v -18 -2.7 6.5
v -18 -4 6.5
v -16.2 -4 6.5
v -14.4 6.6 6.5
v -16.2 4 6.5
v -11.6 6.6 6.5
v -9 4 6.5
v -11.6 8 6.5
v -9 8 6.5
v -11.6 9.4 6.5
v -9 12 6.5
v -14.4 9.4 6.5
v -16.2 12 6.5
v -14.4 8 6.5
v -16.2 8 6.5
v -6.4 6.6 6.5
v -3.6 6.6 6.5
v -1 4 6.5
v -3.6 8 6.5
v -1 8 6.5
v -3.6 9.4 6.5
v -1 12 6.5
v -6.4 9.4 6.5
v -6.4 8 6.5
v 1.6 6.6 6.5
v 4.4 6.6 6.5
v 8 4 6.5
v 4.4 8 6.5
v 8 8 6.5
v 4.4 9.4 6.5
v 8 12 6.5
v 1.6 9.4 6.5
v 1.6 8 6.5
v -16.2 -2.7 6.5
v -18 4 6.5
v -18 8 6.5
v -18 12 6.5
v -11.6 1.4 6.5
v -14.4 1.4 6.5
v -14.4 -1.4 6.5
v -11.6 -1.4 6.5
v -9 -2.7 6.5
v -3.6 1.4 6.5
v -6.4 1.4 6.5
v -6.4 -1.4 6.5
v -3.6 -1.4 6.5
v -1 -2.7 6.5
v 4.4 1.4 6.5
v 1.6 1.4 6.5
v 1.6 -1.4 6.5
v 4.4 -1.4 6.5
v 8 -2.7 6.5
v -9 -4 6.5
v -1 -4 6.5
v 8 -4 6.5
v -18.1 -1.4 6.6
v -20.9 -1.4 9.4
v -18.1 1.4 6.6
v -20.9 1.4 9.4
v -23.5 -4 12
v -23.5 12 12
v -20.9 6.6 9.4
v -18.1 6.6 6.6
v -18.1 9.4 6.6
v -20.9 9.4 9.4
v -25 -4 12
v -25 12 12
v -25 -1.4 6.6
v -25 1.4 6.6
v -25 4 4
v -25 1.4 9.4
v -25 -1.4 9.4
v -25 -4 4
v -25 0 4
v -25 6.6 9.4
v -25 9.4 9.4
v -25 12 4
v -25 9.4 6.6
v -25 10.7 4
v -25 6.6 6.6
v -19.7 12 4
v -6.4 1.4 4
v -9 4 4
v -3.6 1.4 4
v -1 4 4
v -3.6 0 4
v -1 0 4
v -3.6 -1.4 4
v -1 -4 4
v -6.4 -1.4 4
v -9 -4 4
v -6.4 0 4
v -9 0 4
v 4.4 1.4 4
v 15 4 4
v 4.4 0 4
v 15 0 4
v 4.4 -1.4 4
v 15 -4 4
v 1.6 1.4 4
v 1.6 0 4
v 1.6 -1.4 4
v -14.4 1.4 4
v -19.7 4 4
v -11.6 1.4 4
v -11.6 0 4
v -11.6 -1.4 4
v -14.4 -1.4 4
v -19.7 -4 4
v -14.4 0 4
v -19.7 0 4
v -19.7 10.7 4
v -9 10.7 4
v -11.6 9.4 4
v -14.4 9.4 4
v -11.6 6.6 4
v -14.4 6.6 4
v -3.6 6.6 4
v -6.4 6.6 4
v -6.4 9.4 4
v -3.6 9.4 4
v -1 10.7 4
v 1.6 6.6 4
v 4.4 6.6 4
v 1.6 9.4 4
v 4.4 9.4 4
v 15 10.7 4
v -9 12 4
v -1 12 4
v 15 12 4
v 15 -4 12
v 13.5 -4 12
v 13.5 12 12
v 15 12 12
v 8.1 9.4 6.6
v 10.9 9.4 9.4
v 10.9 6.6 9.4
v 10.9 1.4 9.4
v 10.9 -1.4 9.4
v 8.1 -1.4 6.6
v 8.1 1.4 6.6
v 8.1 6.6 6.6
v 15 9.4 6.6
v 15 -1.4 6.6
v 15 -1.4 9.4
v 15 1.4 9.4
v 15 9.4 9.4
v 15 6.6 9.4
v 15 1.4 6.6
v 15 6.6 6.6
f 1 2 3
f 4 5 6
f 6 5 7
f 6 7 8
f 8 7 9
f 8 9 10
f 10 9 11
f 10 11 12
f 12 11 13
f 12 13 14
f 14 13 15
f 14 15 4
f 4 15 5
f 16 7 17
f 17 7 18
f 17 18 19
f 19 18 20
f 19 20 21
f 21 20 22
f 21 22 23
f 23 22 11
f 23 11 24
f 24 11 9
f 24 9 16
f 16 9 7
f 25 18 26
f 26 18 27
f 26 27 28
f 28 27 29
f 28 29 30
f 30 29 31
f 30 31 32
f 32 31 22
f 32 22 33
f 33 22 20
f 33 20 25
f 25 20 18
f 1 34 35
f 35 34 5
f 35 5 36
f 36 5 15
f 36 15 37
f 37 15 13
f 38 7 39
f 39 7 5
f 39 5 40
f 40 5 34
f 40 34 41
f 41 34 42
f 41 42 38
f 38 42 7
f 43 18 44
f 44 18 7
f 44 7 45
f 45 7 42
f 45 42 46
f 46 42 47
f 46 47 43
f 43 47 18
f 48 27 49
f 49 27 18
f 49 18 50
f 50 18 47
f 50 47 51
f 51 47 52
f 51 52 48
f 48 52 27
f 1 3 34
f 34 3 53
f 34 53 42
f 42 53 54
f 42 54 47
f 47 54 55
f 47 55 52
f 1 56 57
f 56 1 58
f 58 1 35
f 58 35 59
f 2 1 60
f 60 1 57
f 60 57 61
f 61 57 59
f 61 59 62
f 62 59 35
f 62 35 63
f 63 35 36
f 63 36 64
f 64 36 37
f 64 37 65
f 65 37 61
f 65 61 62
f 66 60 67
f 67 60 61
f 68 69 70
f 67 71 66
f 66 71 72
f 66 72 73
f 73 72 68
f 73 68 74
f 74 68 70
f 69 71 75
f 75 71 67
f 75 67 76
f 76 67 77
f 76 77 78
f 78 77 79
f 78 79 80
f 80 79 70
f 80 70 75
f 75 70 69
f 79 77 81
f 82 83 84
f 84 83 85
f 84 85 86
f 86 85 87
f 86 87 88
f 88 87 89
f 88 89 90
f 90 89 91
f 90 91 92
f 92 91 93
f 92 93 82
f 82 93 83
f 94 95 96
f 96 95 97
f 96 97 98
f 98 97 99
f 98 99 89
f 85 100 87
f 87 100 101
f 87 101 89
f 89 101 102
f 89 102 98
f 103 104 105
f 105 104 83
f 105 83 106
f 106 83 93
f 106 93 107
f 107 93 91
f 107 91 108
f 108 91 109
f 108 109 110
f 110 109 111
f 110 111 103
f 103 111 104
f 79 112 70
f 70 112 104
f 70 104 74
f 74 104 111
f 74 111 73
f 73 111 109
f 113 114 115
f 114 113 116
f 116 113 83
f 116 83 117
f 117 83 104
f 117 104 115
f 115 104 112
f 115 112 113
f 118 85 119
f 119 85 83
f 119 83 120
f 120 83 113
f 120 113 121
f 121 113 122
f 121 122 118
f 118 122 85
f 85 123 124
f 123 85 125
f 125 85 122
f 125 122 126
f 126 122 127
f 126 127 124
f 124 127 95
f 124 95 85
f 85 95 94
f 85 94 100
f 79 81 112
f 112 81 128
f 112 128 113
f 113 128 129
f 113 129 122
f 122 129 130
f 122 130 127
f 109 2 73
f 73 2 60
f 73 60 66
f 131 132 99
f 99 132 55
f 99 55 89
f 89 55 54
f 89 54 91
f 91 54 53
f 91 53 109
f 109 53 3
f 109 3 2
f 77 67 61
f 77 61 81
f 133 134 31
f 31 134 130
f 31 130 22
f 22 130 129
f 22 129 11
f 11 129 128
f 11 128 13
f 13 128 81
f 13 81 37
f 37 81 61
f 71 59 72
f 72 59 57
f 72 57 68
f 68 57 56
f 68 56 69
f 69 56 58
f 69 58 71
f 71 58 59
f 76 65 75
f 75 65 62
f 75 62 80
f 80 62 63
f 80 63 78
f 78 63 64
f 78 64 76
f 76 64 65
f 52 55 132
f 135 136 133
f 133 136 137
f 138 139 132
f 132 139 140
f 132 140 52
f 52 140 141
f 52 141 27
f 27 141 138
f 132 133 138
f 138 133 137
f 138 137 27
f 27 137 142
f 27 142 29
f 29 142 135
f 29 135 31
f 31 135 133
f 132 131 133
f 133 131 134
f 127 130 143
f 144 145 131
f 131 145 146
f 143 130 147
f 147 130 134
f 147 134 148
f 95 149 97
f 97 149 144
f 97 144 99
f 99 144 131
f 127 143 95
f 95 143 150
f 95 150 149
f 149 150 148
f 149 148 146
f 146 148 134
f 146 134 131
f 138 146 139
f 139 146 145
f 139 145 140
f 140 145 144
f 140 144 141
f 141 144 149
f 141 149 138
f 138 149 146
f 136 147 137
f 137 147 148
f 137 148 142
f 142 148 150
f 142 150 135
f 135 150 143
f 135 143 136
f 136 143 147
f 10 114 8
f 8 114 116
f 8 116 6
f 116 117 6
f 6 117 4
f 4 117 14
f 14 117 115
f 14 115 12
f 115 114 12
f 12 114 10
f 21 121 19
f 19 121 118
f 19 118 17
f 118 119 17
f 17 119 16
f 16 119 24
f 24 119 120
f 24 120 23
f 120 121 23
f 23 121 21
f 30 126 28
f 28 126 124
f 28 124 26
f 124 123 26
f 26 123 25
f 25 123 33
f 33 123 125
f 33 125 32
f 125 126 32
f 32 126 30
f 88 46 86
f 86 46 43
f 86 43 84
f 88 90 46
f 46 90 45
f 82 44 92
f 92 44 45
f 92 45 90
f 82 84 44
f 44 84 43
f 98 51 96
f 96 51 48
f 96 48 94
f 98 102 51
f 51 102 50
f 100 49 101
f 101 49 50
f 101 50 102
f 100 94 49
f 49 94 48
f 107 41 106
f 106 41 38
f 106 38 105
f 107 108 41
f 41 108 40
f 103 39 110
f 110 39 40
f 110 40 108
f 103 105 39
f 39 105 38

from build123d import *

# Parameters (mm, degrees)
RESSALTO_EXTRUS_O1_DEPTH  = 16
ESBO_O2_W                 = 2.8
ESBO_O2_H                 = 2.8
CORTE_EXTRUS_O1_DEPTH     = 54.103672189
ESBO_O4_W                 = 2.8
ESBO_O4_H                 = 2.8
CORTE_EXTRUS_O2_DEPTH     = 31.186917696
CORPO_MOVER_COPIAR1_ANGLE = 90
ESBO_O6_W                 = 30
ESBO_O6_H                 = 16
CORTE_EXTRUS_O3_DEPTH     = 29.861739379
ESBO_O7_W                 = 25.221413321
ESBO_O7_H                 = 12.57615678
RESSALTO_EXTRUS_O2_DEPTH  = 2.5
ESBO_O8_W                 = 2.8
ESBO_O8_H                 = 2.8
CORTE_EXTRUS_O4_DEPTH     = 29.271009886


with BuildPart() as part:
    # Esboço1 → Ressalto-extrusão1 (new body)
    with BuildSketch(Plane.XY):
        Polygon((-25, 0), (25, 0), (25, 8), (23.5, 8), (18, 2.5), (-18, 2.5), (-23.5, 8), (-25, 8), align=None)
    extrude(amount=RESSALTO_EXTRUS_O1_DEPTH)

    # Esboço2 → Corte-extrusão1 (cut, through all)
    with BuildSketch(Plane(origin=(25, 0, 0), x_dir=(0, 0, -1), z_dir=(1, 0, 0))):
        with Locations((-4, 4)):
            Rectangle(ESBO_O2_W, ESBO_O2_H)
        with Locations((-12, 4)):
            Rectangle(ESBO_O2_W, ESBO_O2_H)
    extrude(amount=-CORTE_EXTRUS_O1_DEPTH, mode=Mode.SUBTRACT)

    # Esboço4 → Corte-extrusão2 (cut, through all)
    with BuildSketch(Plane(origin=(0, 2.5, 0), x_dir=(1, 0, 0), z_dir=(0, 1, 0))):
        with Locations((-16, -4)):
            Rectangle(ESBO_O4_W, ESBO_O4_H)
        with Locations((-8, -4)):
            Rectangle(ESBO_O4_W, ESBO_O4_H)
        with Locations((0, -4)):
            Rectangle(ESBO_O4_W, ESBO_O4_H)
        with Locations((8, -4)):
            Rectangle(ESBO_O4_W, ESBO_O4_H)
        with Locations((16, -4)):
            Rectangle(ESBO_O4_W, ESBO_O4_H)
        with Locations((-8, -12)):
            Rectangle(ESBO_O4_W, ESBO_O4_H)
        with Locations((0, -12)):
            Rectangle(ESBO_O4_W, ESBO_O4_H)
        with Locations((8, -12)):
            Rectangle(ESBO_O4_W, ESBO_O4_H)
        with Locations((16, -12)):
            Rectangle(ESBO_O4_W, ESBO_O4_H)
        with Locations((-16, -12)):
            Rectangle(ESBO_O4_W, ESBO_O4_H)
    extrude(amount=-CORTE_EXTRUS_O2_DEPTH, mode=Mode.SUBTRACT)


with BuildPart() as part_1:
    # Corpo-Mover/Copiar1: moved
    add(part.part.rotate(Axis((0, 4, 8), (1, 0, 0)), CORPO_MOVER_COPIAR1_ANGLE))

    # Esboço6 → Corte-extrusão3 (cut, through all)
    with BuildSketch(Plane(origin=(0, 0, 4), x_dir=(-1, 0, 0), z_dir=(0, 0, -1))):
        with Locations((-10, 4)):
            Rectangle(ESBO_O6_W, ESBO_O6_H)
    extrude(amount=-CORTE_EXTRUS_O3_DEPTH, mode=Mode.SUBTRACT)

    # Espelhar3: part across plane


with BuildPart() as part_2:
    add(part_1.part)
    add(part_1.part.mirror(Plane(origin=(-5, -4, 12), x_dir=(0, 0, 1), z_dir=(-1, 0, 0))))

    # Esboço7 → Ressalto-extrusão2 (add, through all)
    with BuildSketch(Plane.XY.offset(6.5)):
        with Locations((-4.971284079, 3.626460754)):
            Rectangle(ESBO_O7_W, ESBO_O7_H)
    extrude(amount=-RESSALTO_EXTRUS_O2_DEPTH)

    # Esboço8 → Corte-extrusão4 (cut, through all)
    with BuildSketch(Plane.XY.offset(6.5)):
        with Locations((-5, 8)):
            Rectangle(ESBO_O8_W, ESBO_O8_H)
        with Locations((-13, 8)):
            Rectangle(ESBO_O8_W, ESBO_O8_H)
        with Locations((3, 8)):
            Rectangle(ESBO_O8_W, ESBO_O8_H)
        with Locations((-5, 0)):
            Rectangle(ESBO_O8_W, ESBO_O8_H)
        with Locations((3, 0)):
            Rectangle(ESBO_O8_W, ESBO_O8_H)
        with Locations((-13, 0)):
            Rectangle(ESBO_O8_W, ESBO_O8_H)
    extrude(amount=-CORTE_EXTRUS_O4_DEPTH, mode=Mode.SUBTRACT)


solid = part_2.part
